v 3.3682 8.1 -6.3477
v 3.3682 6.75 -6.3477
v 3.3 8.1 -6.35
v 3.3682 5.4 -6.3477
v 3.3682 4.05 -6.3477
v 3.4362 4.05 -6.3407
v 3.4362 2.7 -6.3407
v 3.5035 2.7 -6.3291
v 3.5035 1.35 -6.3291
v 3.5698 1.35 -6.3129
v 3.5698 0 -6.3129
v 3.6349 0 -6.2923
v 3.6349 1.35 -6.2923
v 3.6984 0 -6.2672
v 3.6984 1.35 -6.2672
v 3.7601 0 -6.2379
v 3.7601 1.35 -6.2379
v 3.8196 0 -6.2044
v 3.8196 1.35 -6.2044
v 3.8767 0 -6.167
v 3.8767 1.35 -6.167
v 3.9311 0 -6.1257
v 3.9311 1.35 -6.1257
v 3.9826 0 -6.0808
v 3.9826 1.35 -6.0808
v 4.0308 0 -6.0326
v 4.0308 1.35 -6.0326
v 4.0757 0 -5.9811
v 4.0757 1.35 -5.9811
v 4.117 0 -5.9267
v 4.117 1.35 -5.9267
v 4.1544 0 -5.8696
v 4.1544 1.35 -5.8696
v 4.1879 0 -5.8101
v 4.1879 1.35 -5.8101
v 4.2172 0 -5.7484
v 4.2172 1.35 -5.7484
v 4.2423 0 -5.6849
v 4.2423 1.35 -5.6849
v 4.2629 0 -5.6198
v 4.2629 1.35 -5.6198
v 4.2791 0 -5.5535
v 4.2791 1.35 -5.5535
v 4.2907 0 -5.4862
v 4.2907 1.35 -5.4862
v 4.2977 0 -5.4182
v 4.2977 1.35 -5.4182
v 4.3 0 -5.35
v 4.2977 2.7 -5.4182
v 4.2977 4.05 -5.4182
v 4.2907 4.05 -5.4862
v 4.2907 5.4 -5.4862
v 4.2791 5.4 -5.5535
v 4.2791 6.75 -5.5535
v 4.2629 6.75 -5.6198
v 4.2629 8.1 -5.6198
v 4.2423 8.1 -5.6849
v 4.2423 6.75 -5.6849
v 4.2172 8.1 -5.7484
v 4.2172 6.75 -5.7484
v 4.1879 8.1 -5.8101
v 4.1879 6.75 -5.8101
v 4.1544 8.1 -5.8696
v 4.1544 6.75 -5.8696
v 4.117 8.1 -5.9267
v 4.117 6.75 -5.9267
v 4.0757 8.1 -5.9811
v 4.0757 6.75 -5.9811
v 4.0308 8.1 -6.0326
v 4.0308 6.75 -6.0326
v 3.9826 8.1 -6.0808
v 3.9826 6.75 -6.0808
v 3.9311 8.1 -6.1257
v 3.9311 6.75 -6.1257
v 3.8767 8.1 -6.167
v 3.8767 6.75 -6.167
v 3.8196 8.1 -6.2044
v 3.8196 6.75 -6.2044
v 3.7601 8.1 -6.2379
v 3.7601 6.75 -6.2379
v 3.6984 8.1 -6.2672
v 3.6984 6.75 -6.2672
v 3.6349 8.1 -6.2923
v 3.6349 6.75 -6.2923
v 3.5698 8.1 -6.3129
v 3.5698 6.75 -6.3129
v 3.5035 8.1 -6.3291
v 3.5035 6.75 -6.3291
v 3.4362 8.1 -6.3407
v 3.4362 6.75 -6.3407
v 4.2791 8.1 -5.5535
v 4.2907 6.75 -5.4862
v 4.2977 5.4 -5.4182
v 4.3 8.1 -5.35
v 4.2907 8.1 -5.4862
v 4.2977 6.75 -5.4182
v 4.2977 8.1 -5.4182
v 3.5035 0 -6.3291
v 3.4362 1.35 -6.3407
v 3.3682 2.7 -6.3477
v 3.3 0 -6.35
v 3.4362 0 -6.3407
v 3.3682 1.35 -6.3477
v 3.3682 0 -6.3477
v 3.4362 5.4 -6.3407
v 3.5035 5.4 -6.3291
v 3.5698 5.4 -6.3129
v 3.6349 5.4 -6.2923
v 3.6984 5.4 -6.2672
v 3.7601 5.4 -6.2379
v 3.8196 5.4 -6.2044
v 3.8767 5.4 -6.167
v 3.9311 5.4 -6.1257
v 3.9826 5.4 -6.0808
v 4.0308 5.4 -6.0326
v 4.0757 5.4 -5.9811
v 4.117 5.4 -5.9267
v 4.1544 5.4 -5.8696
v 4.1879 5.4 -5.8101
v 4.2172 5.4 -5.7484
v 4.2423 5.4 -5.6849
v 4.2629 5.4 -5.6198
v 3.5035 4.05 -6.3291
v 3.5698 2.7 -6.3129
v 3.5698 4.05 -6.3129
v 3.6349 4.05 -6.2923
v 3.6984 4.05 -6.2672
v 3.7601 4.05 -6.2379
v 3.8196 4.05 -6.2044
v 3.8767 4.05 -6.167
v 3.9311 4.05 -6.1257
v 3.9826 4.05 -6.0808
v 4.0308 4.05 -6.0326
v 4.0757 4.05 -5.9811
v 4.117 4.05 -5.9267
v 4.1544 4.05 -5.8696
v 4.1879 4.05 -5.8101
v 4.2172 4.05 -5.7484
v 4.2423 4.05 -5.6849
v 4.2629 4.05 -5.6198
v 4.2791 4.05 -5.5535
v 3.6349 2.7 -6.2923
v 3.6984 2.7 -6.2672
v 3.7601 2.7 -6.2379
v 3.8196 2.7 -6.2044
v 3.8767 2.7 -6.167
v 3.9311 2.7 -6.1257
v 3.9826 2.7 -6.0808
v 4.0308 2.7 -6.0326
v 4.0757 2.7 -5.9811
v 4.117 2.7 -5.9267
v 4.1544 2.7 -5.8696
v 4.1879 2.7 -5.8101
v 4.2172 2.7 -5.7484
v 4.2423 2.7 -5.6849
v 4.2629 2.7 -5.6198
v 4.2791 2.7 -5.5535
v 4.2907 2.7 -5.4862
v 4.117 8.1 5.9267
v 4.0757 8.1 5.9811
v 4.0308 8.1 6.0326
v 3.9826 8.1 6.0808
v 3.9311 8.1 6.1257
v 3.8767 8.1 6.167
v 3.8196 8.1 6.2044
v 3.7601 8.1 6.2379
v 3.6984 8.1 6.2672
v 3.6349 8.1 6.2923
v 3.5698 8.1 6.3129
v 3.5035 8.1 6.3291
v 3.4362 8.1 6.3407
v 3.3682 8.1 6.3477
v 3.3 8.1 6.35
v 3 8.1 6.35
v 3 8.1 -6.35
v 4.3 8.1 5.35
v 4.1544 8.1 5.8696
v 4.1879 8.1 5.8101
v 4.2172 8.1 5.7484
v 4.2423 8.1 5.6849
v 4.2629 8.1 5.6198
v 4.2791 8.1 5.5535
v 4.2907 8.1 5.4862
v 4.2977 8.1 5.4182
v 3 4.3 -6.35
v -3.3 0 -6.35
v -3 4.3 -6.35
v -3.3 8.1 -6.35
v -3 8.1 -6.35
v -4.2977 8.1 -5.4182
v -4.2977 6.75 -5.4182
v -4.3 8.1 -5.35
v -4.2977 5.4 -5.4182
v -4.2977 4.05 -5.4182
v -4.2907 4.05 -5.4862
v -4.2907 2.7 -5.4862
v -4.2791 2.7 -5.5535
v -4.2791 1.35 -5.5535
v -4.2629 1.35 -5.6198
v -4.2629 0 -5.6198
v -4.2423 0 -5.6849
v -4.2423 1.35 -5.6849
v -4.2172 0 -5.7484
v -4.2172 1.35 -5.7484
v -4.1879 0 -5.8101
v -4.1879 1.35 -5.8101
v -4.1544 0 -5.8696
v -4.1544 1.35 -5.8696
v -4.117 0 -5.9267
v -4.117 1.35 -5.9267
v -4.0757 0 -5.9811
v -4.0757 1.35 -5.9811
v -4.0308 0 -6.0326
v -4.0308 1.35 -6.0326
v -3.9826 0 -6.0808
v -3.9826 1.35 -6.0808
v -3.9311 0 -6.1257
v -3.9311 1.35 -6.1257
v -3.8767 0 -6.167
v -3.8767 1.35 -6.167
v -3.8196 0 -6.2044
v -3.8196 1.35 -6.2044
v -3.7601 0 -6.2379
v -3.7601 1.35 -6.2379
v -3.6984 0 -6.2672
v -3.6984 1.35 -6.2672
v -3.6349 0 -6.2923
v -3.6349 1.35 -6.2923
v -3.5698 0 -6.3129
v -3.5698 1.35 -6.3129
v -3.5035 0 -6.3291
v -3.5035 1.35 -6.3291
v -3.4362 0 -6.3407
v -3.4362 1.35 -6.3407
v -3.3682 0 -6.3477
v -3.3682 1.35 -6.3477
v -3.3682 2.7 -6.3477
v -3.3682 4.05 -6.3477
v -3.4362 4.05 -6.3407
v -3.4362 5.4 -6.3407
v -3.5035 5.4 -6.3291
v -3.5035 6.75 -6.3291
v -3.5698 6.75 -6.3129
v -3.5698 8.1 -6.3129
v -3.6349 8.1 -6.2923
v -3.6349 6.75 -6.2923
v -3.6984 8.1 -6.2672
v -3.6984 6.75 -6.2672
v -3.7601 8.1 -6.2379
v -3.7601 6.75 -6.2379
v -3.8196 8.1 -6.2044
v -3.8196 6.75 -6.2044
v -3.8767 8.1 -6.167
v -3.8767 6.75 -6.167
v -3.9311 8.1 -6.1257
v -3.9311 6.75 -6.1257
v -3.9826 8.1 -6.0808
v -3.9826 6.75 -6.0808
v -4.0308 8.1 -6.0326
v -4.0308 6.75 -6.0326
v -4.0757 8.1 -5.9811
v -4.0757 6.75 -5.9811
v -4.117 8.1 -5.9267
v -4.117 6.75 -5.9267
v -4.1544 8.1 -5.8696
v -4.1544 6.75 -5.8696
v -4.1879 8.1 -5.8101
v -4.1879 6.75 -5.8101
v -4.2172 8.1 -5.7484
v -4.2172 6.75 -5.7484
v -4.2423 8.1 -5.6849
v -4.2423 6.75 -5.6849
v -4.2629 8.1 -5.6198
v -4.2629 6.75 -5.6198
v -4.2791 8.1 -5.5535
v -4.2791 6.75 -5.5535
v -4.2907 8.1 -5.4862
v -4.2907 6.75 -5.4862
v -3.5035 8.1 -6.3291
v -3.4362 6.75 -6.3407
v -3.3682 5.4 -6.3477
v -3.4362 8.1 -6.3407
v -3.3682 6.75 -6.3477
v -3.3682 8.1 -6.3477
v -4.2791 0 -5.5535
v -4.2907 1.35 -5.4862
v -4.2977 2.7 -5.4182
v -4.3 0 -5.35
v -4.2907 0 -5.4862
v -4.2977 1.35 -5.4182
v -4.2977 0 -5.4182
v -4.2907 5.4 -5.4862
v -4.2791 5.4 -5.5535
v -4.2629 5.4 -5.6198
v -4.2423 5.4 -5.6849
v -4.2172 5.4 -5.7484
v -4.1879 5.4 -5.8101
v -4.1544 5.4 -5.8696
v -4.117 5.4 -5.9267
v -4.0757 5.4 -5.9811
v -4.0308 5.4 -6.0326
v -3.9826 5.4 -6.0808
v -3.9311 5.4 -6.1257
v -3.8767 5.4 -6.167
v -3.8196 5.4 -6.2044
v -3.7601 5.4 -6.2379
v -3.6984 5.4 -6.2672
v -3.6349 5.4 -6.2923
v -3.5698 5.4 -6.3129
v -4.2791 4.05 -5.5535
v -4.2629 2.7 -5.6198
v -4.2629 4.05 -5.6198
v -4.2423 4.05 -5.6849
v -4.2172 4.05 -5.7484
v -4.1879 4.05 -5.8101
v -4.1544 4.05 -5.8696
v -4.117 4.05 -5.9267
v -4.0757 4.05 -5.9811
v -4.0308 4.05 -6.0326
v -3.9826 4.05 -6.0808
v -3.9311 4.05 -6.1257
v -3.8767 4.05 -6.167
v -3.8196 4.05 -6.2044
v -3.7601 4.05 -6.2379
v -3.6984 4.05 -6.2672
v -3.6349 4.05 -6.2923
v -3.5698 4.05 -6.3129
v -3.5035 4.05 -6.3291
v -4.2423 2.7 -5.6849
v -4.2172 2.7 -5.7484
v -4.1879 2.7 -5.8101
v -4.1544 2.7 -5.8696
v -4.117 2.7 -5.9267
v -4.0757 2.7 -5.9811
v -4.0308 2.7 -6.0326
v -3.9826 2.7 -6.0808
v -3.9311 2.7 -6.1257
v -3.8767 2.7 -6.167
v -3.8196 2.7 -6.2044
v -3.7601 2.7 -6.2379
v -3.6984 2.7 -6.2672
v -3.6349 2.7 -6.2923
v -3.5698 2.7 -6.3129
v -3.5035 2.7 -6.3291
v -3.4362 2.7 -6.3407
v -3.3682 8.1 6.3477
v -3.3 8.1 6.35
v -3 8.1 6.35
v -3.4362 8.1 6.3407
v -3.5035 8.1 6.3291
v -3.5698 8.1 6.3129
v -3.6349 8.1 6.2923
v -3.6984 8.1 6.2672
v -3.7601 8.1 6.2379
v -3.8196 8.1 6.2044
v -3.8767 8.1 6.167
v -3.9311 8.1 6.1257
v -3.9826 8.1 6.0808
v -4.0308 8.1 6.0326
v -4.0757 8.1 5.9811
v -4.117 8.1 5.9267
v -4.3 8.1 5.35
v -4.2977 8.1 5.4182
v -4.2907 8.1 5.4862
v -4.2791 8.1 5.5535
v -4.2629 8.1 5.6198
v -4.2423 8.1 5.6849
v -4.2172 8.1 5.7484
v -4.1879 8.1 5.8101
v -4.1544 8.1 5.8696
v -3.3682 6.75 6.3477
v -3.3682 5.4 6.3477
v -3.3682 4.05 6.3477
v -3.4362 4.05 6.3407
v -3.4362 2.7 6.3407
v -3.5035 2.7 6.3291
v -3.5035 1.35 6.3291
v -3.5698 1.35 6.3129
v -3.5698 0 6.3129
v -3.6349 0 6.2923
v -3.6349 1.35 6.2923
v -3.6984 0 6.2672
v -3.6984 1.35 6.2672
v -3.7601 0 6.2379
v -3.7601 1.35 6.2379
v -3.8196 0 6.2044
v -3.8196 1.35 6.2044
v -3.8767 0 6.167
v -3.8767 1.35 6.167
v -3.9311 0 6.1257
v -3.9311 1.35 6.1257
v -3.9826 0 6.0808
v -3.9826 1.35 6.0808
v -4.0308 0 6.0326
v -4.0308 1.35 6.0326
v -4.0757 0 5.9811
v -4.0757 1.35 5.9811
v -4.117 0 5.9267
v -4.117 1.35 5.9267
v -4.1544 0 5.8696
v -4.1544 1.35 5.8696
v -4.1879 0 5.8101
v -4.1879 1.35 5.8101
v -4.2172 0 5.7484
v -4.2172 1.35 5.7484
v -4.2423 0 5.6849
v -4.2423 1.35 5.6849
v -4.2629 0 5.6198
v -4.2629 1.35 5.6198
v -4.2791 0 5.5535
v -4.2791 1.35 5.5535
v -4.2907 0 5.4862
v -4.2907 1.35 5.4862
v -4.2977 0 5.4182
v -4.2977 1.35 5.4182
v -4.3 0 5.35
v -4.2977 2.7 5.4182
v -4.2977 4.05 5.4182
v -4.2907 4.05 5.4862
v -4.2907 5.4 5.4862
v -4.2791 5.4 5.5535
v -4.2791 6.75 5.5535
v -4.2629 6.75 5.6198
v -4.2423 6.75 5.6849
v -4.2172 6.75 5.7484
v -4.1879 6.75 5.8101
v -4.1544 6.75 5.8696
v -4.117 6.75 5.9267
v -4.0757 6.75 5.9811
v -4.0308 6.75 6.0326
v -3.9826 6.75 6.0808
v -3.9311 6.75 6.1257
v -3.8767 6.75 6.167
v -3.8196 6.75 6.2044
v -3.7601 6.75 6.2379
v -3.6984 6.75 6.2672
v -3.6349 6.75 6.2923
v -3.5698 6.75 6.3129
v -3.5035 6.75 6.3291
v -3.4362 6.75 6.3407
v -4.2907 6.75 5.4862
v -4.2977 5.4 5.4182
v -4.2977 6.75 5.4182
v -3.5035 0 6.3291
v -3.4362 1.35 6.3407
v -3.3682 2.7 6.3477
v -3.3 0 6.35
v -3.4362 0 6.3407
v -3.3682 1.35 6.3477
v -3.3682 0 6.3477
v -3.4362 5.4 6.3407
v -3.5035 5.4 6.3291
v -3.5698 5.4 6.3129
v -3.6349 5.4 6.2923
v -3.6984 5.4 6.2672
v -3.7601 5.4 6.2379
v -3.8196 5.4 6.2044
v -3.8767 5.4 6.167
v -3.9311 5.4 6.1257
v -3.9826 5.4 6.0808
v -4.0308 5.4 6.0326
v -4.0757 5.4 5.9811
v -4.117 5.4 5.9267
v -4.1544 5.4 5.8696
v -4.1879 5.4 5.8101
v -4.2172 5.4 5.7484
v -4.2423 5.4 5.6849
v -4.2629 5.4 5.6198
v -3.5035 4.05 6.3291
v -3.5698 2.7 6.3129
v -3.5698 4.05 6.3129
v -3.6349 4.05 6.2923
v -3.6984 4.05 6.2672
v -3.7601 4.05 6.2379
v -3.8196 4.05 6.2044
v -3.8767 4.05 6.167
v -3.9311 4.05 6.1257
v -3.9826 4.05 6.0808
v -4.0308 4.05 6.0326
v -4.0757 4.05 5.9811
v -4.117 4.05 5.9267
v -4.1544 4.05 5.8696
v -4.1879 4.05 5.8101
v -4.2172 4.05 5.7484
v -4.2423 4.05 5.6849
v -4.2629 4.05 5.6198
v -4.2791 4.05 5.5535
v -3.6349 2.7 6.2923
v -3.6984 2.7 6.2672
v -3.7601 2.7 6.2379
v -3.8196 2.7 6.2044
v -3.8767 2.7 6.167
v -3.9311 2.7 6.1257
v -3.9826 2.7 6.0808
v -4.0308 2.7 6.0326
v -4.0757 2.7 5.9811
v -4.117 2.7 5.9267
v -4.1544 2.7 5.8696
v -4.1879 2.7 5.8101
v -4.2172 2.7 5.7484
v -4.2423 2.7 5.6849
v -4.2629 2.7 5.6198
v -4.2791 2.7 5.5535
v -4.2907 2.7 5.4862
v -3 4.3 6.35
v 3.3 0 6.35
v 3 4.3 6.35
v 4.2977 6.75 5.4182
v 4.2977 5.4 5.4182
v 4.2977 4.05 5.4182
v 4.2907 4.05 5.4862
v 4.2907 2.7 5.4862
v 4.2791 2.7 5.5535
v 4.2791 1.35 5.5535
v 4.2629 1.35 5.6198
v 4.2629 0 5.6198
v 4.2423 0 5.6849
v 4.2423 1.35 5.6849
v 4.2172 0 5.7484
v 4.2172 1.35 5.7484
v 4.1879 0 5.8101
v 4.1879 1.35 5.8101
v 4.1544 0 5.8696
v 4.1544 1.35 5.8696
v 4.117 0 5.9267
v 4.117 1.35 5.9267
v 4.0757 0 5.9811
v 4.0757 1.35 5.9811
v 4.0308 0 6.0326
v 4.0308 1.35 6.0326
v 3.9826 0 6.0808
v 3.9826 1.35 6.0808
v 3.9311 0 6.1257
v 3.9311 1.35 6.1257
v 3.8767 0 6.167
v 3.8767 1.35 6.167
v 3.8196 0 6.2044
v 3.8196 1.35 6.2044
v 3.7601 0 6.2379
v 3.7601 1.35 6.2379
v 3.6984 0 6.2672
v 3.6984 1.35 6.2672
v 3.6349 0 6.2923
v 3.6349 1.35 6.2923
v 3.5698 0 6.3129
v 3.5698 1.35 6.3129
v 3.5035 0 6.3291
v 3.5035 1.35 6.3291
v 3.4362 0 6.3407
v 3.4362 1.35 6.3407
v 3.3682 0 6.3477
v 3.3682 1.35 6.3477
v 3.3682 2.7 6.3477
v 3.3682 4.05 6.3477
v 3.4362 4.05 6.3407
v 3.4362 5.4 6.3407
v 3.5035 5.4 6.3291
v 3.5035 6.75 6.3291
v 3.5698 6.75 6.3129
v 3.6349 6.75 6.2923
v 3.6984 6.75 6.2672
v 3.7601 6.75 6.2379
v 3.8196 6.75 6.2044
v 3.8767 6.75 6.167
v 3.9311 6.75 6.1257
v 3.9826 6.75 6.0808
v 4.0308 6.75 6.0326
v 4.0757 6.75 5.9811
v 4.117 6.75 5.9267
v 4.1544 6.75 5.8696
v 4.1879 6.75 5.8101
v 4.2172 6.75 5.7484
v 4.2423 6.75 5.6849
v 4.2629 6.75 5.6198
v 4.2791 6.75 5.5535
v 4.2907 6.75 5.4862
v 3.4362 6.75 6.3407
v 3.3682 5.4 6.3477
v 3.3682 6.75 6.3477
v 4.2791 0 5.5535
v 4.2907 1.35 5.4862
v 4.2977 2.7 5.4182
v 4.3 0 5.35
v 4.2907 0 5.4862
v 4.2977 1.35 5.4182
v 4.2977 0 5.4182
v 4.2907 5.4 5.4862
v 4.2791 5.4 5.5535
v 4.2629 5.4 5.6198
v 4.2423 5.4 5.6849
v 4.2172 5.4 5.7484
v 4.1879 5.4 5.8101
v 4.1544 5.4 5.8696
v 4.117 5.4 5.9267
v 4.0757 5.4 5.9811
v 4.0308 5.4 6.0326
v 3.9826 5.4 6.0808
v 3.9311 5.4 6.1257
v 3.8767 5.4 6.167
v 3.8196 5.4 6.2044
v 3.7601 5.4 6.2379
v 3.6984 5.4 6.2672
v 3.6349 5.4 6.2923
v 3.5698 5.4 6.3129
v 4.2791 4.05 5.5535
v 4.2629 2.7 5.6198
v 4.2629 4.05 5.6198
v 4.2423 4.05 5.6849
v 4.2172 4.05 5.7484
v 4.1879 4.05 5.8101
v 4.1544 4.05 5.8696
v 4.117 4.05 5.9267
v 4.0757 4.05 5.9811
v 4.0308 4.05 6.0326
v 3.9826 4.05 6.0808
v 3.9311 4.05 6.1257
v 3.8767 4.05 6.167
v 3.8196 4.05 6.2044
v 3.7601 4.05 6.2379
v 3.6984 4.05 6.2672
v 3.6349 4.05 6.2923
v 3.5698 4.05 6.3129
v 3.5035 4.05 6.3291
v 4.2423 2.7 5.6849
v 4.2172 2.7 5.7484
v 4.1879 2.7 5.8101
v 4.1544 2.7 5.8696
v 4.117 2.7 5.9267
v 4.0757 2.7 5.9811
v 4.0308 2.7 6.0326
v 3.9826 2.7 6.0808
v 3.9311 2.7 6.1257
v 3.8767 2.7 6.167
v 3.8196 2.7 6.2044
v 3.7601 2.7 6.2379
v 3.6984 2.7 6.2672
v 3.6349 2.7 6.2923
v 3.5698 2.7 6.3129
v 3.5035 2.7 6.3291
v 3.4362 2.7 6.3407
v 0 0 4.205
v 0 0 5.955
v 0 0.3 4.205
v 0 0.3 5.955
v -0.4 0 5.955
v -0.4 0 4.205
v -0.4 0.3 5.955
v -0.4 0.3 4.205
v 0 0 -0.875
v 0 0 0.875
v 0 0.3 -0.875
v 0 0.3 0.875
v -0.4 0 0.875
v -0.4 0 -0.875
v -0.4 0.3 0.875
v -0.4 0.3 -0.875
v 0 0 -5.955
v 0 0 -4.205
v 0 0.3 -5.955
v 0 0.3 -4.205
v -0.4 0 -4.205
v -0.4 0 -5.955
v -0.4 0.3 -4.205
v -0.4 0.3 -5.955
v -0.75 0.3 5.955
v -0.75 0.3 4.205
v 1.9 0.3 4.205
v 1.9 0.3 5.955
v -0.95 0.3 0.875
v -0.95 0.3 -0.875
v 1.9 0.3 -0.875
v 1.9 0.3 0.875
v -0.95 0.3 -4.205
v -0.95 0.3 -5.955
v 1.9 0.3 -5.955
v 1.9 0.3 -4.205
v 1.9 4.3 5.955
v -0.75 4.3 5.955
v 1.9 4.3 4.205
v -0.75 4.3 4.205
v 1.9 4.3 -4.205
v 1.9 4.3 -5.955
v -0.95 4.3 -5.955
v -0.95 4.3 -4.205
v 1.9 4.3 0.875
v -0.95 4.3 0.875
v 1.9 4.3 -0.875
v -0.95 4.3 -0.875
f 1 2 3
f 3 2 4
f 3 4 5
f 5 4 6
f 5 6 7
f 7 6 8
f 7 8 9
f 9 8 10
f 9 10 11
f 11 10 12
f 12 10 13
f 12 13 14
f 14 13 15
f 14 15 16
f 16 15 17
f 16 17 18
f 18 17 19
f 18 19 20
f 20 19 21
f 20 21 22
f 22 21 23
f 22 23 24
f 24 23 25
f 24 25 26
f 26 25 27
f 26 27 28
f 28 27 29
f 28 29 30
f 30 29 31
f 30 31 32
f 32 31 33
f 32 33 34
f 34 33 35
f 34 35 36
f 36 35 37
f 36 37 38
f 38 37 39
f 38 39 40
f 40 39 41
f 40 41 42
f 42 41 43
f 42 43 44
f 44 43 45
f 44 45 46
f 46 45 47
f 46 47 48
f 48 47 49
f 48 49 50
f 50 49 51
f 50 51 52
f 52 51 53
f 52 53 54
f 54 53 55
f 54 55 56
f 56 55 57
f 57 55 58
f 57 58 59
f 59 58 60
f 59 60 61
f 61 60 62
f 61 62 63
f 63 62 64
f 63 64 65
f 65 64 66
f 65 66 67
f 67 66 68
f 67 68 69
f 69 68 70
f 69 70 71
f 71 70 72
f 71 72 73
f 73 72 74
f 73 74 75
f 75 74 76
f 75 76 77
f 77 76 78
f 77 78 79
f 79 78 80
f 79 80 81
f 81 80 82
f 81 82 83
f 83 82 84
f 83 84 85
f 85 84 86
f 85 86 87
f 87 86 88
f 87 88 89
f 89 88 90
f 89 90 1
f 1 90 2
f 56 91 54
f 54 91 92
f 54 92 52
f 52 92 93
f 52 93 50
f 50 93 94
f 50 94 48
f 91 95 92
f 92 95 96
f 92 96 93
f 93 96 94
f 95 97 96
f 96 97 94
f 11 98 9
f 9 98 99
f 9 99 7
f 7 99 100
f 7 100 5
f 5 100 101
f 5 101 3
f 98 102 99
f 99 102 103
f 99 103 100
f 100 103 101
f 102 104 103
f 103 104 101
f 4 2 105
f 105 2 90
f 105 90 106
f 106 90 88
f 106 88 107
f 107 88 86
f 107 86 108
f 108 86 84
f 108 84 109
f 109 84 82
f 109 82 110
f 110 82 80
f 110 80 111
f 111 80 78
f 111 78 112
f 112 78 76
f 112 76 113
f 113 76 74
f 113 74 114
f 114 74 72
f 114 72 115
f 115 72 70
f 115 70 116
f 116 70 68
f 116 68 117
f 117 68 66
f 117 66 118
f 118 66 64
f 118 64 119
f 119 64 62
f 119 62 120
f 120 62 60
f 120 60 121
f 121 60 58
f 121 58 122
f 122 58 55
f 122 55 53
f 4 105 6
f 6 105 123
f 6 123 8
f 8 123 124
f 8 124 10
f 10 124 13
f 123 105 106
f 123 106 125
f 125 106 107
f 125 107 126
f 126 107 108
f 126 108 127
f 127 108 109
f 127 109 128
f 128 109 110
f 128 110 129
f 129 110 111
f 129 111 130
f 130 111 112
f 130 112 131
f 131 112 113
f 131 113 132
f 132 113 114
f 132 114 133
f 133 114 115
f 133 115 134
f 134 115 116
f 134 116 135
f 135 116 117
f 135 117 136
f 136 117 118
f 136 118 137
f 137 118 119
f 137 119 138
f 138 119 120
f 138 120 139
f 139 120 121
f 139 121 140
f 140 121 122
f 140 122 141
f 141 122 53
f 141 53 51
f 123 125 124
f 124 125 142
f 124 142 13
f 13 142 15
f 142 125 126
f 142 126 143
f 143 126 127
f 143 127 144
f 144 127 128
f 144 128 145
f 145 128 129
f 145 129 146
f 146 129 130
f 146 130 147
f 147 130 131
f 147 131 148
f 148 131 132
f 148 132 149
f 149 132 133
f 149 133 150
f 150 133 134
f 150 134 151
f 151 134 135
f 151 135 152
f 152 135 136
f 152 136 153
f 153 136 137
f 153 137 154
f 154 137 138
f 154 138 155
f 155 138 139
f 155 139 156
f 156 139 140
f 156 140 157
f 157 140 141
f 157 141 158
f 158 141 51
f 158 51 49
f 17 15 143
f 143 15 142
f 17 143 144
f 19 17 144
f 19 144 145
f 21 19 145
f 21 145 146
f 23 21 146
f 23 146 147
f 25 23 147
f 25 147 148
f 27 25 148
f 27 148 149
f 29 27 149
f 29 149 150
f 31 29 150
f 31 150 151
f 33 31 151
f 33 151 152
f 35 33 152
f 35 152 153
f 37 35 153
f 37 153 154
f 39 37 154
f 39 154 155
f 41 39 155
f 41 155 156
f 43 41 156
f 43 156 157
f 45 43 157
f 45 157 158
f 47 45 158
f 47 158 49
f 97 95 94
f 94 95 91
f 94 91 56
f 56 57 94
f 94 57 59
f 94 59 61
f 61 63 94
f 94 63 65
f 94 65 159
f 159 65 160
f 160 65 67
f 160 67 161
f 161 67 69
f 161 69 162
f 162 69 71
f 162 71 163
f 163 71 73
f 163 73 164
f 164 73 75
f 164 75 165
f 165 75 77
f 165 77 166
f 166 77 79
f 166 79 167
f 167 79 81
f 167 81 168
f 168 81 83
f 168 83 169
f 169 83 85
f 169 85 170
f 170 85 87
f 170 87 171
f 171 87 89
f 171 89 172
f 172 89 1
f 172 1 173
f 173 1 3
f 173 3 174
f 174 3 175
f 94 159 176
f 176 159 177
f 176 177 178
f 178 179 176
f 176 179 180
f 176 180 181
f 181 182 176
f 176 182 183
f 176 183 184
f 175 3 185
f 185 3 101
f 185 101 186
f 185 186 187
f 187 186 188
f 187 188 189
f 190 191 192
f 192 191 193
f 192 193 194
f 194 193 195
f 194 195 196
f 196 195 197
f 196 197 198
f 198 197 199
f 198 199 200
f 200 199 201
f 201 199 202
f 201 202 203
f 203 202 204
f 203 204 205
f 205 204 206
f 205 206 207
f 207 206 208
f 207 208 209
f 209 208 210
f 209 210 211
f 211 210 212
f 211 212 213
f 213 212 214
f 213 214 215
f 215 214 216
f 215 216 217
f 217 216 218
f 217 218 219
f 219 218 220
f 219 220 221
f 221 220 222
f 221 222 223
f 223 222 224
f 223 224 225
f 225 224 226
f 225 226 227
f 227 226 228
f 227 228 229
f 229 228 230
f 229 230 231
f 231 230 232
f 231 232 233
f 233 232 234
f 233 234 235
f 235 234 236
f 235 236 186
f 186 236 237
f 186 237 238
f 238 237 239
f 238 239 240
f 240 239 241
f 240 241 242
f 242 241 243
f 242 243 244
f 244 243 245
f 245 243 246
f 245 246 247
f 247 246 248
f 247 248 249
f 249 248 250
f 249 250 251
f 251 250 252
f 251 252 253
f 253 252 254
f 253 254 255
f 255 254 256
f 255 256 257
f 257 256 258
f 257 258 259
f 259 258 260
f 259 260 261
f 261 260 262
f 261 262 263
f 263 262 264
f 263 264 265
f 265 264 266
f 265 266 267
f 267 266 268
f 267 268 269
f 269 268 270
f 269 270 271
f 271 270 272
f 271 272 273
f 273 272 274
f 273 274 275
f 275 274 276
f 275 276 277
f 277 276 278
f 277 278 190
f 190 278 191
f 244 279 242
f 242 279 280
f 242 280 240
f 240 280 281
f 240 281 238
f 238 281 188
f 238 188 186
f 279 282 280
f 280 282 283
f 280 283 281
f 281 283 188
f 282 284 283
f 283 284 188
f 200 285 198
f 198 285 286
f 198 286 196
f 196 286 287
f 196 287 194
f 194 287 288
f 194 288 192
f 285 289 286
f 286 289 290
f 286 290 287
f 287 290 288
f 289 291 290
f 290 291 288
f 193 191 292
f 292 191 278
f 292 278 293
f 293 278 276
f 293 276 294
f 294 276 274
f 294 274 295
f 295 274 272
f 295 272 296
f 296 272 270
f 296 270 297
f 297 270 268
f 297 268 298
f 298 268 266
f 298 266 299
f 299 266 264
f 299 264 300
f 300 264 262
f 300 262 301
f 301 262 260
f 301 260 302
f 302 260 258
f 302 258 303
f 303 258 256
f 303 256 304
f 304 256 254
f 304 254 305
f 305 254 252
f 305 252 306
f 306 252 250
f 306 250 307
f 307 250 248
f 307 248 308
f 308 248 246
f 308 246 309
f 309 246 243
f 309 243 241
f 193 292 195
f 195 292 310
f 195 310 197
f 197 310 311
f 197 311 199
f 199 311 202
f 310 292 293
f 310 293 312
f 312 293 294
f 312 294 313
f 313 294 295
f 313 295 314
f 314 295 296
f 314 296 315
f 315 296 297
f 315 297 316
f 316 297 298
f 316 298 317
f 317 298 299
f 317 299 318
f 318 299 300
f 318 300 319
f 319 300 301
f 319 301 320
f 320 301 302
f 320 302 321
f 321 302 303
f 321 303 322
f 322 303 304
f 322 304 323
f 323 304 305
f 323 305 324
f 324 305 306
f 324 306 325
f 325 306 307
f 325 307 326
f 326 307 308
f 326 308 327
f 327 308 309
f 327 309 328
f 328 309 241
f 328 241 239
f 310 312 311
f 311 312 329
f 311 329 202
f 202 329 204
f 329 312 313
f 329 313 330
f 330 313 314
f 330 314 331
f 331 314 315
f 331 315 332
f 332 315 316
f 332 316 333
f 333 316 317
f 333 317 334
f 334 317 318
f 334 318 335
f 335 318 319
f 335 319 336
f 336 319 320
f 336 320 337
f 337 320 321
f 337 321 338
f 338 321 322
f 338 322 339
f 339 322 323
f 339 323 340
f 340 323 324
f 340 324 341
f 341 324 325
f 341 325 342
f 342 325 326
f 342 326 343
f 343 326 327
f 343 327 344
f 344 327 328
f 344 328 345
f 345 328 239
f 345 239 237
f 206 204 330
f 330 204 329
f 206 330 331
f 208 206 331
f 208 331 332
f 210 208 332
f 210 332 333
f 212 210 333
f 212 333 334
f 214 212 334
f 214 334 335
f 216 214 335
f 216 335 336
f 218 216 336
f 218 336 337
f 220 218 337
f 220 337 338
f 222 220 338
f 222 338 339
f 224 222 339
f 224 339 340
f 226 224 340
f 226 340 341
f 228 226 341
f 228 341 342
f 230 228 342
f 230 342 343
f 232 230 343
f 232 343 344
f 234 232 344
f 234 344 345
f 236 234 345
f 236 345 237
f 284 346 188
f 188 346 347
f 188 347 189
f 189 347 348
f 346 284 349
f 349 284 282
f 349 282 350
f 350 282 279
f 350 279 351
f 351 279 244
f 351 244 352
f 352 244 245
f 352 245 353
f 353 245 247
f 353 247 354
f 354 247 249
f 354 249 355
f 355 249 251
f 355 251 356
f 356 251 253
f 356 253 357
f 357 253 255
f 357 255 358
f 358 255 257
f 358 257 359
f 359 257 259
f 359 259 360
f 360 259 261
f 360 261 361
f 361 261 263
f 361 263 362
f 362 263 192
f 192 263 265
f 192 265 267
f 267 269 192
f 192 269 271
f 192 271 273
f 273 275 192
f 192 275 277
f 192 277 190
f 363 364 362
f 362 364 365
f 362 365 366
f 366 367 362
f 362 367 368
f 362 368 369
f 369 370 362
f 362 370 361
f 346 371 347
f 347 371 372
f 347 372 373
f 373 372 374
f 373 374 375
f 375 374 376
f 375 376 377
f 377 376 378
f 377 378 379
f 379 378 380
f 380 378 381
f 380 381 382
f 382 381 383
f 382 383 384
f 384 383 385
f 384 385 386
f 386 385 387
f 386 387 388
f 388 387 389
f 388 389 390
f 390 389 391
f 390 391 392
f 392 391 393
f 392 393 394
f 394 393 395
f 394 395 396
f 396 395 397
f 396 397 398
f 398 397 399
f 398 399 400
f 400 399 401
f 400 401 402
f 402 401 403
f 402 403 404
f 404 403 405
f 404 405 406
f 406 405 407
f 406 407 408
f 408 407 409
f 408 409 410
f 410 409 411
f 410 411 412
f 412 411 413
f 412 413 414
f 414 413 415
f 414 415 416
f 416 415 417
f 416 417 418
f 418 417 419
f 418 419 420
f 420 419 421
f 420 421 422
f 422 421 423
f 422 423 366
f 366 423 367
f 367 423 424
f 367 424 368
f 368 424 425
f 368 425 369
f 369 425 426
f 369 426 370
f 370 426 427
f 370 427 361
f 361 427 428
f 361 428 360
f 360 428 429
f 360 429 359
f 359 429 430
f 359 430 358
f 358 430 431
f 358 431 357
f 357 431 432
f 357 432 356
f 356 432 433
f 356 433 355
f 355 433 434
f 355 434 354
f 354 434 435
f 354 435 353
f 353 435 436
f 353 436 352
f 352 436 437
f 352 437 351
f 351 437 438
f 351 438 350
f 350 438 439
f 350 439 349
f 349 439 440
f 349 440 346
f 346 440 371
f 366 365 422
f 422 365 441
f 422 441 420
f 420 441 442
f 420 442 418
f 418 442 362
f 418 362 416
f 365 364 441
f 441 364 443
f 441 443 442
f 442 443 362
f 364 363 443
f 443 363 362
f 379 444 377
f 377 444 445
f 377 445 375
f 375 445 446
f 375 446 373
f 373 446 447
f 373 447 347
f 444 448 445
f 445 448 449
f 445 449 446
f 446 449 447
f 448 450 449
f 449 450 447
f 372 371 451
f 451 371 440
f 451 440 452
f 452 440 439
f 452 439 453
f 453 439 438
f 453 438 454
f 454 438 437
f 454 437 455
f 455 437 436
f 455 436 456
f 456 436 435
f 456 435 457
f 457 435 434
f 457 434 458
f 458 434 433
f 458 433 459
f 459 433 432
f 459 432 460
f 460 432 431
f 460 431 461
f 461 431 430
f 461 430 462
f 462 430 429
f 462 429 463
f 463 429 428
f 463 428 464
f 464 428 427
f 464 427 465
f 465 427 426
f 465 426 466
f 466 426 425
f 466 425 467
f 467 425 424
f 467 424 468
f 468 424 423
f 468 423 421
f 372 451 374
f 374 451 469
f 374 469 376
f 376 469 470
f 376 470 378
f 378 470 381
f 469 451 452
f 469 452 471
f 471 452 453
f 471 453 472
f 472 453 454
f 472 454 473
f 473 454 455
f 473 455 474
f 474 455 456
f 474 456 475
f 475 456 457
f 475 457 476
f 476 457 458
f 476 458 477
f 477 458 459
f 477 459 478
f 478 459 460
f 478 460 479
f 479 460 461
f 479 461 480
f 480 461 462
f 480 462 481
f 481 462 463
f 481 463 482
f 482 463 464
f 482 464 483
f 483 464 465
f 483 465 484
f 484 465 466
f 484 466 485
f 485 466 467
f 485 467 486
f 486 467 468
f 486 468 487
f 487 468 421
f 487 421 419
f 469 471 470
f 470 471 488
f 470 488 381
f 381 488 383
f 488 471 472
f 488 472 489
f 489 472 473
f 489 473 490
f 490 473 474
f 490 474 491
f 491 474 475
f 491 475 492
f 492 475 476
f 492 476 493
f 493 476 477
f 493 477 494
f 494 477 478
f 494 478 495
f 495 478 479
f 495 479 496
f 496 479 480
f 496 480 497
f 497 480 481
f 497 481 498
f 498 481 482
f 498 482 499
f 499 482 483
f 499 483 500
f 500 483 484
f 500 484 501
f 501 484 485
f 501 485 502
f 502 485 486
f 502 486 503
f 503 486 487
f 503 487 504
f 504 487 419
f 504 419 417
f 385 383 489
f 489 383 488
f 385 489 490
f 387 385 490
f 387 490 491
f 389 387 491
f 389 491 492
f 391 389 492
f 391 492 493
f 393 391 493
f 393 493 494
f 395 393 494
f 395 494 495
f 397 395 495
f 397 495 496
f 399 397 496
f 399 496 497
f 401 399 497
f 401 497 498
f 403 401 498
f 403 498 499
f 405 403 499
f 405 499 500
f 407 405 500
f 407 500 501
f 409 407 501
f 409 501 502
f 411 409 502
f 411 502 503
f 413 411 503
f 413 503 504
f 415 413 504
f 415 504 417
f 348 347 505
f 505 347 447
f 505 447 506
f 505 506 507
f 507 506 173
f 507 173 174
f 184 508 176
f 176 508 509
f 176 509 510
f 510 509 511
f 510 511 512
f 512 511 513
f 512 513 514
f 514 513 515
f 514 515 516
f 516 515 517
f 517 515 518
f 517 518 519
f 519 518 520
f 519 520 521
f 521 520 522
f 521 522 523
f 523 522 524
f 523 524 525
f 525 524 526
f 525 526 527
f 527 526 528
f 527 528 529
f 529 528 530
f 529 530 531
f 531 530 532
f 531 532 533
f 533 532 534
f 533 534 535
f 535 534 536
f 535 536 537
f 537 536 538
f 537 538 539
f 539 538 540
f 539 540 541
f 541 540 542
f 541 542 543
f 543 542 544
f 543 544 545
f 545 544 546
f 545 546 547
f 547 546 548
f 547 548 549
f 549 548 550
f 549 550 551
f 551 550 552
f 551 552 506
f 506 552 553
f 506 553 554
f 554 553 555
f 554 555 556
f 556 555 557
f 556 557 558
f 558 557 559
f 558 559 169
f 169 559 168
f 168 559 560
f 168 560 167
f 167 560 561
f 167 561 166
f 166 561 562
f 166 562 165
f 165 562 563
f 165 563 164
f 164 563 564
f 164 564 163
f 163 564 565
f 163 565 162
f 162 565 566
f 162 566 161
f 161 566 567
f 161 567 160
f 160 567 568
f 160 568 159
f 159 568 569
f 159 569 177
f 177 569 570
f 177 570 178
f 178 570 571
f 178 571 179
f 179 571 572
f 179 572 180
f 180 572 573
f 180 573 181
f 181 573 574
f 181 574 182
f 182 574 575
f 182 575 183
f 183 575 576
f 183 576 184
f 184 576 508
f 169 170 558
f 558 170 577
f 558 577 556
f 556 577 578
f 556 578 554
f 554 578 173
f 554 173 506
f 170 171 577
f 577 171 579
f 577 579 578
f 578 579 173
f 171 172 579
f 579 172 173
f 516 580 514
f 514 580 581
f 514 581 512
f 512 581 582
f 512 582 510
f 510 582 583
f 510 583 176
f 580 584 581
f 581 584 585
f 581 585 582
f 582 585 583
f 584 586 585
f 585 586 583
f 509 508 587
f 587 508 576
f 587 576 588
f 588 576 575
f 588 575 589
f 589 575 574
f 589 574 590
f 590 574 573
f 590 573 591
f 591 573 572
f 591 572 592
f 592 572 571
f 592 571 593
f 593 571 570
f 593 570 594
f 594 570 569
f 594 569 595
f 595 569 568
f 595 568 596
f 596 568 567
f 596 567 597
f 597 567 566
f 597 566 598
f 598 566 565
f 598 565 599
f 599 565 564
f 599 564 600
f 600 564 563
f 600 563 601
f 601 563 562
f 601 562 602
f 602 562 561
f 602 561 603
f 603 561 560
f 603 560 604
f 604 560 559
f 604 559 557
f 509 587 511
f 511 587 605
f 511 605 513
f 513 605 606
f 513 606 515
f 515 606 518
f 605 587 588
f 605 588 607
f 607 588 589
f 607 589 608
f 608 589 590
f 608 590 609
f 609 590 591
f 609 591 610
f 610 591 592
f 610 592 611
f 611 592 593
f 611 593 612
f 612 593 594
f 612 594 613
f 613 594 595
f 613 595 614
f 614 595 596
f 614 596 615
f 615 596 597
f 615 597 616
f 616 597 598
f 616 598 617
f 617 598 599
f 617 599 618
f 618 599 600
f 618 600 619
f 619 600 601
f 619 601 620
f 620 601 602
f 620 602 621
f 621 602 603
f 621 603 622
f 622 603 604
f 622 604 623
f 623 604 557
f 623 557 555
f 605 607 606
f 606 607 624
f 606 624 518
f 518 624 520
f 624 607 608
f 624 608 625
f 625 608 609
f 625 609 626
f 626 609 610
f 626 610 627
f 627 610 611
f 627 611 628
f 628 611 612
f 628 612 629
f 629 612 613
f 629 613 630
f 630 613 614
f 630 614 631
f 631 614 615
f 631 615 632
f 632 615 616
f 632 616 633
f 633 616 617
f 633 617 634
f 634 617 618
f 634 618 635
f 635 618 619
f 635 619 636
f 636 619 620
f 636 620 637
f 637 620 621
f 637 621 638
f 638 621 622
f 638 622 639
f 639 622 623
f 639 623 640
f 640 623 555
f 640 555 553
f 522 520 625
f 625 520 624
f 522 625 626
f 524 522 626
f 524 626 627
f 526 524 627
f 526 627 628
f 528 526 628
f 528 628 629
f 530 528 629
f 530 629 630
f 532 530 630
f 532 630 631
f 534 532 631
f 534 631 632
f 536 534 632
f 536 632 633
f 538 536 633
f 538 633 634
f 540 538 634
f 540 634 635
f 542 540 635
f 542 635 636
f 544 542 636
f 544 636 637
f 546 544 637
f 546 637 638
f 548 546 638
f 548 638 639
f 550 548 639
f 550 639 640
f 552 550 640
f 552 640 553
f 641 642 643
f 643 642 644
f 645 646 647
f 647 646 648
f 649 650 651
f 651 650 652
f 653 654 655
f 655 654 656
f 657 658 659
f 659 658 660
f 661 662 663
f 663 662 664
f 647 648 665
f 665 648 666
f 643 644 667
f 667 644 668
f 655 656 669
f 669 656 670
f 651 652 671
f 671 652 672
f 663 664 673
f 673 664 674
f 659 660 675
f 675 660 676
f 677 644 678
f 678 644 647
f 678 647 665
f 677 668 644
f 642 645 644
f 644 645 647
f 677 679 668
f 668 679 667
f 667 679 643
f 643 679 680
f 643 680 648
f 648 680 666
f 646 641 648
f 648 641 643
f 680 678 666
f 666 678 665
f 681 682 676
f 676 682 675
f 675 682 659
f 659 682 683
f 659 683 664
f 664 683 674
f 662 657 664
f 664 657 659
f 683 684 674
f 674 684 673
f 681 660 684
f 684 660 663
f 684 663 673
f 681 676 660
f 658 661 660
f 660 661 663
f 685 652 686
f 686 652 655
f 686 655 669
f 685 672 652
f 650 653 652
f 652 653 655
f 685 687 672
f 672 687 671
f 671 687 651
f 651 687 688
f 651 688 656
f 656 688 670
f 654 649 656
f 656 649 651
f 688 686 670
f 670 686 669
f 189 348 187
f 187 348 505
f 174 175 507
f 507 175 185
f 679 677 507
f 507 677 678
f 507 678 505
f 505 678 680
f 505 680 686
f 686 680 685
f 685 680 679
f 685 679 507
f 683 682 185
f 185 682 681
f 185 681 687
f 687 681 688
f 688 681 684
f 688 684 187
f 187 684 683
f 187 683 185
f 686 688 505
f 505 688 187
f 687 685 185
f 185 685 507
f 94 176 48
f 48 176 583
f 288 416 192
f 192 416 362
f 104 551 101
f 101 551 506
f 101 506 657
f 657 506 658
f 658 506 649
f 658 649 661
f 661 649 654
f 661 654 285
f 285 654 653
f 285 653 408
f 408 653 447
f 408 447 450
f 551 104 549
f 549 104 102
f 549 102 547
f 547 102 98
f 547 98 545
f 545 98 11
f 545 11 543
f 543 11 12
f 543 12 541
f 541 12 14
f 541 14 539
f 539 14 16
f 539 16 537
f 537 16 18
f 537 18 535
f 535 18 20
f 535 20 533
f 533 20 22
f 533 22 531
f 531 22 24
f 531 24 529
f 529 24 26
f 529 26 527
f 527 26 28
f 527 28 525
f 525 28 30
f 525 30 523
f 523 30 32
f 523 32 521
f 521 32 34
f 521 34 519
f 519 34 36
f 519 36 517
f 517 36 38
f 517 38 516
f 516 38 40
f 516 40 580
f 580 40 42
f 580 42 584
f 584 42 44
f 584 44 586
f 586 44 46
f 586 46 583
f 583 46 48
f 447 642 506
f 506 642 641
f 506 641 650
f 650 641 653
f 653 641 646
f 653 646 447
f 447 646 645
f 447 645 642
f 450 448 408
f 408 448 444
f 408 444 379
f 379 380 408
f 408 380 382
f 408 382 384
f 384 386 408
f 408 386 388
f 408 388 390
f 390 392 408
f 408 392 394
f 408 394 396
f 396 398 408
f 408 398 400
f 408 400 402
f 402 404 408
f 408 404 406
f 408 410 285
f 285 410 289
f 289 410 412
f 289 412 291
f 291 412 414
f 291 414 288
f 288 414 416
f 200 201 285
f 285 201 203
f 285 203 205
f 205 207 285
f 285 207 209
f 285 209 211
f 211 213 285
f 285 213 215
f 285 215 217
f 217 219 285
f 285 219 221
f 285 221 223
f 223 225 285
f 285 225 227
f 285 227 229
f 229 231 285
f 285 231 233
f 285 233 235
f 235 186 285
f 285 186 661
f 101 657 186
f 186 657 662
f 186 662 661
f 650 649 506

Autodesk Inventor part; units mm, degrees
ref_plane "YZ Plane" through (0, 0, 0) normal (1, 0, 0) x (0, 1, 0)
ref_plane "XZ Plane" through (0, 0, 0) normal (0, 1, 0) x (-1, 0, 0)
ref_plane "XY Plane" through (0, 0, 0) normal (0, 0, 1) x (1, 0, 0)
sketch "Эскиз1" plane through (0, 0, 0) normal (0, 1, 0) x (-1, 0, 0)
  line L0 (-2.9, 6.425) -> (2.9, 6.425)
  line L1 (2.9, 6.425) -> (2.9, -6.425)
  line L2 (2.9, -6.425) -> (-2.9, -6.425)
  line L3 (-2.9, -6.425) -> (-2.9, 6.425)
  line L4 (-2.9, 6.425) -> (2.9, -6.425) construction
  line L5 (2.9, 6.425) -> (-2.9, -6.425) construction
  line L6 (-3, 6.35) -> (3, 6.35)
  line L7 (3, 6.35) -> (3, -6.35)
  line L8 (3, -6.35) -> (-3, -6.35)
  line L9 (-3, -6.35) -> (-3, 6.35)
  line L10 (-3, 6.35) -> (3, -6.35) construction
  line L11 (3, 6.35) -> (-3, -6.35) construction
  line L12 (3, 6.35) -> (4.3, 6.35)
  line L13 (4.3, 6.35) -> (4.3, -6.35)
  line L14 (4.3, -6.35) -> (3, -6.35)
  line L15 (3, -6.35) -> (3, 6.35)
  line L16 (-3, 6.35) -> (-4.3, 6.35)
  line L17 (-4.3, 6.35) -> (-4.3, -6.35)
  line L18 (-4.3, -6.35) -> (-3, -6.35)
  line L19 (-3, -6.35) -> (-3, 6.35)
  point P0 (0, 0)
  dimension "d0" = 5.8
  dimension "d1" = 12.85
  dimension "d2" = 6
  dimension "d3" = 12.7
  dimension "d4" = 1.3
  dimension "d5" = 1.3
extrude "Выдавливание1" add sketch "Эскиз1" along normal blind 8.1 contours L6 L1 L8 L3 | L3 L8 L9 L6 | L6 L7 L8 L1 | L9 L18 L17 L16 | L12 L13 L14 L7
sketch "Эскиз2" plane through (0, 8.1, 0) normal (0, 1, 0) x (1, 0, 0)
  line L0 (4.3, 6.35) -> (-4.3, 6.35) projected
  line L1 (3, -6.35) -> (-3, -6.35)
  line L2 (-3, -6.35) -> (-3, 6.35)
  line L3 (-3, 6.35) -> (3, 6.35)
  line L4 (3, 6.35) -> (3, -6.35)
  line L5 (3, -6.35) -> (-3, 6.35) construction
  line L6 (-3, -6.35) -> (3, 6.35) construction
  point P0 (0, 0)
  dimension "d8" = 6
extrude "Выдавливание2" cut sketch "Эскиз2" against normal blind 3.8
sketch "Эскиз3" plane through (0, 4.3, 0) normal (0, 1, 0) x (1, 0, 0)
  line L0 (3, 6.35) -> (3, -6.35) projected
  line L1 (-3, 6.35) -> (3, 6.35) projected
  line L2 (-3, -6.35) -> (-3, 6.35) projected
  line L3 (3, -6.35) -> (-3, -6.35) projected
  line L4 (3, -6.35) -> (1.7, -6.35)
  line L5 (-4.3, -6.35) -> (4.3, -6.35) projected
  line L6 (-3, -6.35) -> (-0.75, -6.35)
  line L7 (-0.75, -6.35) -> (-0.75, 6.35)
  line L8 (1.7, -6.35) -> (1.7, 6.35)
  line L9 (-3, 6.35) -> (3, 6.35) projected
  line L10 (-0.75, -6.35) -> (1.7, -6.35)
  line L11 (0.475, -6.35) -> (0.475, 6.35)
  line L12 (0.475, -5.08) -> (0.475, 0)
  line L13 (0.475, 0) -> (0.475, 5.08)
  line L14 (1.7, 0) -> (-0.75, 0)
  line L15 (-0.75, -0.675) -> (1.7, -0.675)
  line L16 (1.7, -0.675) -> (1.7, 0.675)
  line L17 (1.7, 0.675) -> (-0.75, 0.675)
  line L18 (-0.75, 0.675) -> (-0.75, -0.675)
  line L19 (-0.75, -0.675) -> (1.7, 0.675) construction
  line L20 (1.7, -0.675) -> (-0.75, 0.675) construction
  line L21 (-0.75, 4.405) -> (1.7, 4.405)
  line L22 (1.7, 4.405) -> (1.7, 5.755)
  line L23 (1.7, 5.755) -> (-0.75, 5.755)
  line L24 (-0.75, 5.755) -> (-0.75, 4.405)
  line L25 (-0.75, 4.405) -> (1.7, 5.755) construction
  line L26 (1.7, 4.405) -> (-0.75, 5.755) construction
  line L27 (-0.75, -5.755) -> (1.7, -5.755)
  line L28 (1.7, -5.755) -> (1.7, -4.405)
  line L29 (1.7, -4.405) -> (-0.75, -4.405)
  line L30 (-0.75, -4.405) -> (-0.75, -5.755)
  line L31 (-0.75, -5.755) -> (1.7, -4.405) construction
  line L32 (1.7, -5.755) -> (-0.75, -4.405) construction
  line L33 (-0.95, 0.875) -> (1.9, 0.875)
  line L34 (1.9, 0.875) -> (1.9, -0.875)
  line L35 (1.9, -0.875) -> (-0.95, -0.875)
  line L36 (-0.95, -0.875) -> (-0.95, 0.875)
  line L37 (1.9, 4.205) -> (-0.95, 4.205)
  line L38 (-0.95, 4.205) -> (-0.95, 5.955)
  line L39 (-0.95, 5.955) -> (1.9, 5.955)
  line L40 (1.9, 5.955) -> (1.9, 4.205)
  line L41 (-0.95, -4.205) -> (1.9, -4.205)
  line L42 (1.9, -4.205) -> (1.9, -5.955)
  line L43 (1.9, -5.955) -> (-0.95, -5.955)
  line L44 (-0.95, -5.955) -> (-0.95, -4.205)
  line L45 (-0.95, 5.955) -> (1.9, 5.955)
  line L46 (1.9, 5.955) -> (1.9, 4.205)
  line L47 (1.9, 4.205) -> (-0.95, 4.205)
  line L48 (-0.95, 4.205) -> (-0.95, 5.955)
  point P0 (0, 0)
  point P1 (-0.75, -4.205)
  point P2 (-0.75, -5.955)
  point P3 (-0.75, 4.205)
  point P4 (-0.75, 5.955)
  point P5 (-0.75, 5.955)
  dimension "d11" = 1.3
  dimension "d12" = 2.25
  dimension "d13" = 5.08
  dimension "d14" = 5.08
  dimension "d15" = 1.35
  dimension "d16" = 1.35
  dimension "d17" = 1.35
  dimension "d18" = 0.2
  dimension "d19" = 0.2
  dimension "d20" = 0.2
extrude "Выдавливание3" cut sketch "Эскиз3" against normal blind 4 contours L39 L40 L37 L8 | L8 L23 L11 L39 | L43 L11 L27 L8 | L8 L41 L42 L43 | L11 L23 L7 L39 | L8 L21 L11 L23 | L43 L7 L27 L11 | L27 L11 L29 L8 | L7 L37 L38 L39 | L11 L21 L7 L23 | L8 L37 L11 L21 | L27 L7 L29 L11 | L29 L11 L41 L8 | L11 L37 L7 L21 | L29 L7 L41 L11 | L33 L34 L35 L8 | L8 L17 L11 L33 | L35 L11 L15 L8 | L8 L14 L11 L17 | L11 L17 L7 L33 | L15 L11 L14 L8 | L35 L7 L15 L11 | L7 L35 L36 L33 | L11 L14 L7 L17 | L15 L7 L14 L11
sketch "Эскиз4" plane through (0, 0.3, 0) normal (0, 1, 0) x (1, 0, 0)
  line L0 (1.9, -5.955) -> (-0.75, -5.955) projected
  line L1 (-0.75, -5.955) -> (-0.75, -4.205) projected
  line L2 (-0.75, -4.205) -> (1.9, -4.205) projected
  line L3 (1.9, -4.205) -> (1.9, -5.955) projected
  line L4 (1.9, 5.955) -> (1.9, 4.205) projected
  line L5 (1.9, 4.205) -> (-0.95, 4.205) projected
  line L6 (-0.95, 4.205) -> (-0.95, 5.955) projected
  line L7 (-0.95, 5.955) -> (1.9, 5.955) projected
  line L8 (1.9, -0.875) -> (-0.95, -0.875) projected
  line L9 (-0.95, -0.875) -> (-0.95, 0.875) projected
  line L10 (-0.95, 0.875) -> (1.9, 0.875) projected
  line L11 (1.9, 0.875) -> (1.9, -0.875) projected
  line L12 (3, 6.35) -> (3, -6.35) projected
  line L13 (-3, 6.35) -> (3, 6.35) projected
  line L14 (-3, -6.35) -> (-3, 6.35) projected
  line L15 (3, -6.35) -> (-3, -6.35) projected
  line L16 (0, -0.875) -> (-0.4, -0.875)
  line L17 (-0.4, -0.875) -> (-0.4, 0.875)
  line L18 (-0.4, 0.875) -> (0, 0.875)
  line L19 (0, 0.875) -> (0, -0.875)
  line L20 (1.9, 4.205) -> (-0.95, 4.205) projected
  line L21 (0, 4.205) -> (-0.4, 4.205)
  line L22 (-0.4, 4.205) -> (-0.4, 5.955)
  line L23 (-0.4, 5.955) -> (0, 5.955)
  line L24 (0, 5.955) -> (0, 4.205)
  line L25 (1.9, -5.955) -> (-0.75, -5.955) projected
  line L26 (-0.75, -4.205) -> (1.9, -4.205) projected
  line L27 (0, -5.955) -> (-0.4, -5.955)
  line L28 (-0.4, -5.955) -> (-0.4, -4.205)
  line L29 (-0.4, -4.205) -> (0, -4.205)
  line L30 (0, -4.205) -> (0, -5.955)
  line L31 (3, -6.35) -> (-3, -6.35) projected
  line L32 (0, -6.35) -> (0, 6.35)
  line L33 (4.3, 6.35) -> (-4.3, 6.35) projected
  point P0 (0, 0)
  dimension "d23" = 0.4
extrude "Выдавливание4" cut sketch "Эскиз4" against normal blind 4 contours L0 L28 L2 L30 | L8 L17 L10 L19 | L5 L22 L7 L24
fillet "Сопряжение1" radius 1 4 edges at (4.3, 4.05, 6.35) (-4.3, 4.05, 6.35) (-4.3, 4.05, -6.35) (4.3, 4.05, -6.35)
properties part number "push-fit"
